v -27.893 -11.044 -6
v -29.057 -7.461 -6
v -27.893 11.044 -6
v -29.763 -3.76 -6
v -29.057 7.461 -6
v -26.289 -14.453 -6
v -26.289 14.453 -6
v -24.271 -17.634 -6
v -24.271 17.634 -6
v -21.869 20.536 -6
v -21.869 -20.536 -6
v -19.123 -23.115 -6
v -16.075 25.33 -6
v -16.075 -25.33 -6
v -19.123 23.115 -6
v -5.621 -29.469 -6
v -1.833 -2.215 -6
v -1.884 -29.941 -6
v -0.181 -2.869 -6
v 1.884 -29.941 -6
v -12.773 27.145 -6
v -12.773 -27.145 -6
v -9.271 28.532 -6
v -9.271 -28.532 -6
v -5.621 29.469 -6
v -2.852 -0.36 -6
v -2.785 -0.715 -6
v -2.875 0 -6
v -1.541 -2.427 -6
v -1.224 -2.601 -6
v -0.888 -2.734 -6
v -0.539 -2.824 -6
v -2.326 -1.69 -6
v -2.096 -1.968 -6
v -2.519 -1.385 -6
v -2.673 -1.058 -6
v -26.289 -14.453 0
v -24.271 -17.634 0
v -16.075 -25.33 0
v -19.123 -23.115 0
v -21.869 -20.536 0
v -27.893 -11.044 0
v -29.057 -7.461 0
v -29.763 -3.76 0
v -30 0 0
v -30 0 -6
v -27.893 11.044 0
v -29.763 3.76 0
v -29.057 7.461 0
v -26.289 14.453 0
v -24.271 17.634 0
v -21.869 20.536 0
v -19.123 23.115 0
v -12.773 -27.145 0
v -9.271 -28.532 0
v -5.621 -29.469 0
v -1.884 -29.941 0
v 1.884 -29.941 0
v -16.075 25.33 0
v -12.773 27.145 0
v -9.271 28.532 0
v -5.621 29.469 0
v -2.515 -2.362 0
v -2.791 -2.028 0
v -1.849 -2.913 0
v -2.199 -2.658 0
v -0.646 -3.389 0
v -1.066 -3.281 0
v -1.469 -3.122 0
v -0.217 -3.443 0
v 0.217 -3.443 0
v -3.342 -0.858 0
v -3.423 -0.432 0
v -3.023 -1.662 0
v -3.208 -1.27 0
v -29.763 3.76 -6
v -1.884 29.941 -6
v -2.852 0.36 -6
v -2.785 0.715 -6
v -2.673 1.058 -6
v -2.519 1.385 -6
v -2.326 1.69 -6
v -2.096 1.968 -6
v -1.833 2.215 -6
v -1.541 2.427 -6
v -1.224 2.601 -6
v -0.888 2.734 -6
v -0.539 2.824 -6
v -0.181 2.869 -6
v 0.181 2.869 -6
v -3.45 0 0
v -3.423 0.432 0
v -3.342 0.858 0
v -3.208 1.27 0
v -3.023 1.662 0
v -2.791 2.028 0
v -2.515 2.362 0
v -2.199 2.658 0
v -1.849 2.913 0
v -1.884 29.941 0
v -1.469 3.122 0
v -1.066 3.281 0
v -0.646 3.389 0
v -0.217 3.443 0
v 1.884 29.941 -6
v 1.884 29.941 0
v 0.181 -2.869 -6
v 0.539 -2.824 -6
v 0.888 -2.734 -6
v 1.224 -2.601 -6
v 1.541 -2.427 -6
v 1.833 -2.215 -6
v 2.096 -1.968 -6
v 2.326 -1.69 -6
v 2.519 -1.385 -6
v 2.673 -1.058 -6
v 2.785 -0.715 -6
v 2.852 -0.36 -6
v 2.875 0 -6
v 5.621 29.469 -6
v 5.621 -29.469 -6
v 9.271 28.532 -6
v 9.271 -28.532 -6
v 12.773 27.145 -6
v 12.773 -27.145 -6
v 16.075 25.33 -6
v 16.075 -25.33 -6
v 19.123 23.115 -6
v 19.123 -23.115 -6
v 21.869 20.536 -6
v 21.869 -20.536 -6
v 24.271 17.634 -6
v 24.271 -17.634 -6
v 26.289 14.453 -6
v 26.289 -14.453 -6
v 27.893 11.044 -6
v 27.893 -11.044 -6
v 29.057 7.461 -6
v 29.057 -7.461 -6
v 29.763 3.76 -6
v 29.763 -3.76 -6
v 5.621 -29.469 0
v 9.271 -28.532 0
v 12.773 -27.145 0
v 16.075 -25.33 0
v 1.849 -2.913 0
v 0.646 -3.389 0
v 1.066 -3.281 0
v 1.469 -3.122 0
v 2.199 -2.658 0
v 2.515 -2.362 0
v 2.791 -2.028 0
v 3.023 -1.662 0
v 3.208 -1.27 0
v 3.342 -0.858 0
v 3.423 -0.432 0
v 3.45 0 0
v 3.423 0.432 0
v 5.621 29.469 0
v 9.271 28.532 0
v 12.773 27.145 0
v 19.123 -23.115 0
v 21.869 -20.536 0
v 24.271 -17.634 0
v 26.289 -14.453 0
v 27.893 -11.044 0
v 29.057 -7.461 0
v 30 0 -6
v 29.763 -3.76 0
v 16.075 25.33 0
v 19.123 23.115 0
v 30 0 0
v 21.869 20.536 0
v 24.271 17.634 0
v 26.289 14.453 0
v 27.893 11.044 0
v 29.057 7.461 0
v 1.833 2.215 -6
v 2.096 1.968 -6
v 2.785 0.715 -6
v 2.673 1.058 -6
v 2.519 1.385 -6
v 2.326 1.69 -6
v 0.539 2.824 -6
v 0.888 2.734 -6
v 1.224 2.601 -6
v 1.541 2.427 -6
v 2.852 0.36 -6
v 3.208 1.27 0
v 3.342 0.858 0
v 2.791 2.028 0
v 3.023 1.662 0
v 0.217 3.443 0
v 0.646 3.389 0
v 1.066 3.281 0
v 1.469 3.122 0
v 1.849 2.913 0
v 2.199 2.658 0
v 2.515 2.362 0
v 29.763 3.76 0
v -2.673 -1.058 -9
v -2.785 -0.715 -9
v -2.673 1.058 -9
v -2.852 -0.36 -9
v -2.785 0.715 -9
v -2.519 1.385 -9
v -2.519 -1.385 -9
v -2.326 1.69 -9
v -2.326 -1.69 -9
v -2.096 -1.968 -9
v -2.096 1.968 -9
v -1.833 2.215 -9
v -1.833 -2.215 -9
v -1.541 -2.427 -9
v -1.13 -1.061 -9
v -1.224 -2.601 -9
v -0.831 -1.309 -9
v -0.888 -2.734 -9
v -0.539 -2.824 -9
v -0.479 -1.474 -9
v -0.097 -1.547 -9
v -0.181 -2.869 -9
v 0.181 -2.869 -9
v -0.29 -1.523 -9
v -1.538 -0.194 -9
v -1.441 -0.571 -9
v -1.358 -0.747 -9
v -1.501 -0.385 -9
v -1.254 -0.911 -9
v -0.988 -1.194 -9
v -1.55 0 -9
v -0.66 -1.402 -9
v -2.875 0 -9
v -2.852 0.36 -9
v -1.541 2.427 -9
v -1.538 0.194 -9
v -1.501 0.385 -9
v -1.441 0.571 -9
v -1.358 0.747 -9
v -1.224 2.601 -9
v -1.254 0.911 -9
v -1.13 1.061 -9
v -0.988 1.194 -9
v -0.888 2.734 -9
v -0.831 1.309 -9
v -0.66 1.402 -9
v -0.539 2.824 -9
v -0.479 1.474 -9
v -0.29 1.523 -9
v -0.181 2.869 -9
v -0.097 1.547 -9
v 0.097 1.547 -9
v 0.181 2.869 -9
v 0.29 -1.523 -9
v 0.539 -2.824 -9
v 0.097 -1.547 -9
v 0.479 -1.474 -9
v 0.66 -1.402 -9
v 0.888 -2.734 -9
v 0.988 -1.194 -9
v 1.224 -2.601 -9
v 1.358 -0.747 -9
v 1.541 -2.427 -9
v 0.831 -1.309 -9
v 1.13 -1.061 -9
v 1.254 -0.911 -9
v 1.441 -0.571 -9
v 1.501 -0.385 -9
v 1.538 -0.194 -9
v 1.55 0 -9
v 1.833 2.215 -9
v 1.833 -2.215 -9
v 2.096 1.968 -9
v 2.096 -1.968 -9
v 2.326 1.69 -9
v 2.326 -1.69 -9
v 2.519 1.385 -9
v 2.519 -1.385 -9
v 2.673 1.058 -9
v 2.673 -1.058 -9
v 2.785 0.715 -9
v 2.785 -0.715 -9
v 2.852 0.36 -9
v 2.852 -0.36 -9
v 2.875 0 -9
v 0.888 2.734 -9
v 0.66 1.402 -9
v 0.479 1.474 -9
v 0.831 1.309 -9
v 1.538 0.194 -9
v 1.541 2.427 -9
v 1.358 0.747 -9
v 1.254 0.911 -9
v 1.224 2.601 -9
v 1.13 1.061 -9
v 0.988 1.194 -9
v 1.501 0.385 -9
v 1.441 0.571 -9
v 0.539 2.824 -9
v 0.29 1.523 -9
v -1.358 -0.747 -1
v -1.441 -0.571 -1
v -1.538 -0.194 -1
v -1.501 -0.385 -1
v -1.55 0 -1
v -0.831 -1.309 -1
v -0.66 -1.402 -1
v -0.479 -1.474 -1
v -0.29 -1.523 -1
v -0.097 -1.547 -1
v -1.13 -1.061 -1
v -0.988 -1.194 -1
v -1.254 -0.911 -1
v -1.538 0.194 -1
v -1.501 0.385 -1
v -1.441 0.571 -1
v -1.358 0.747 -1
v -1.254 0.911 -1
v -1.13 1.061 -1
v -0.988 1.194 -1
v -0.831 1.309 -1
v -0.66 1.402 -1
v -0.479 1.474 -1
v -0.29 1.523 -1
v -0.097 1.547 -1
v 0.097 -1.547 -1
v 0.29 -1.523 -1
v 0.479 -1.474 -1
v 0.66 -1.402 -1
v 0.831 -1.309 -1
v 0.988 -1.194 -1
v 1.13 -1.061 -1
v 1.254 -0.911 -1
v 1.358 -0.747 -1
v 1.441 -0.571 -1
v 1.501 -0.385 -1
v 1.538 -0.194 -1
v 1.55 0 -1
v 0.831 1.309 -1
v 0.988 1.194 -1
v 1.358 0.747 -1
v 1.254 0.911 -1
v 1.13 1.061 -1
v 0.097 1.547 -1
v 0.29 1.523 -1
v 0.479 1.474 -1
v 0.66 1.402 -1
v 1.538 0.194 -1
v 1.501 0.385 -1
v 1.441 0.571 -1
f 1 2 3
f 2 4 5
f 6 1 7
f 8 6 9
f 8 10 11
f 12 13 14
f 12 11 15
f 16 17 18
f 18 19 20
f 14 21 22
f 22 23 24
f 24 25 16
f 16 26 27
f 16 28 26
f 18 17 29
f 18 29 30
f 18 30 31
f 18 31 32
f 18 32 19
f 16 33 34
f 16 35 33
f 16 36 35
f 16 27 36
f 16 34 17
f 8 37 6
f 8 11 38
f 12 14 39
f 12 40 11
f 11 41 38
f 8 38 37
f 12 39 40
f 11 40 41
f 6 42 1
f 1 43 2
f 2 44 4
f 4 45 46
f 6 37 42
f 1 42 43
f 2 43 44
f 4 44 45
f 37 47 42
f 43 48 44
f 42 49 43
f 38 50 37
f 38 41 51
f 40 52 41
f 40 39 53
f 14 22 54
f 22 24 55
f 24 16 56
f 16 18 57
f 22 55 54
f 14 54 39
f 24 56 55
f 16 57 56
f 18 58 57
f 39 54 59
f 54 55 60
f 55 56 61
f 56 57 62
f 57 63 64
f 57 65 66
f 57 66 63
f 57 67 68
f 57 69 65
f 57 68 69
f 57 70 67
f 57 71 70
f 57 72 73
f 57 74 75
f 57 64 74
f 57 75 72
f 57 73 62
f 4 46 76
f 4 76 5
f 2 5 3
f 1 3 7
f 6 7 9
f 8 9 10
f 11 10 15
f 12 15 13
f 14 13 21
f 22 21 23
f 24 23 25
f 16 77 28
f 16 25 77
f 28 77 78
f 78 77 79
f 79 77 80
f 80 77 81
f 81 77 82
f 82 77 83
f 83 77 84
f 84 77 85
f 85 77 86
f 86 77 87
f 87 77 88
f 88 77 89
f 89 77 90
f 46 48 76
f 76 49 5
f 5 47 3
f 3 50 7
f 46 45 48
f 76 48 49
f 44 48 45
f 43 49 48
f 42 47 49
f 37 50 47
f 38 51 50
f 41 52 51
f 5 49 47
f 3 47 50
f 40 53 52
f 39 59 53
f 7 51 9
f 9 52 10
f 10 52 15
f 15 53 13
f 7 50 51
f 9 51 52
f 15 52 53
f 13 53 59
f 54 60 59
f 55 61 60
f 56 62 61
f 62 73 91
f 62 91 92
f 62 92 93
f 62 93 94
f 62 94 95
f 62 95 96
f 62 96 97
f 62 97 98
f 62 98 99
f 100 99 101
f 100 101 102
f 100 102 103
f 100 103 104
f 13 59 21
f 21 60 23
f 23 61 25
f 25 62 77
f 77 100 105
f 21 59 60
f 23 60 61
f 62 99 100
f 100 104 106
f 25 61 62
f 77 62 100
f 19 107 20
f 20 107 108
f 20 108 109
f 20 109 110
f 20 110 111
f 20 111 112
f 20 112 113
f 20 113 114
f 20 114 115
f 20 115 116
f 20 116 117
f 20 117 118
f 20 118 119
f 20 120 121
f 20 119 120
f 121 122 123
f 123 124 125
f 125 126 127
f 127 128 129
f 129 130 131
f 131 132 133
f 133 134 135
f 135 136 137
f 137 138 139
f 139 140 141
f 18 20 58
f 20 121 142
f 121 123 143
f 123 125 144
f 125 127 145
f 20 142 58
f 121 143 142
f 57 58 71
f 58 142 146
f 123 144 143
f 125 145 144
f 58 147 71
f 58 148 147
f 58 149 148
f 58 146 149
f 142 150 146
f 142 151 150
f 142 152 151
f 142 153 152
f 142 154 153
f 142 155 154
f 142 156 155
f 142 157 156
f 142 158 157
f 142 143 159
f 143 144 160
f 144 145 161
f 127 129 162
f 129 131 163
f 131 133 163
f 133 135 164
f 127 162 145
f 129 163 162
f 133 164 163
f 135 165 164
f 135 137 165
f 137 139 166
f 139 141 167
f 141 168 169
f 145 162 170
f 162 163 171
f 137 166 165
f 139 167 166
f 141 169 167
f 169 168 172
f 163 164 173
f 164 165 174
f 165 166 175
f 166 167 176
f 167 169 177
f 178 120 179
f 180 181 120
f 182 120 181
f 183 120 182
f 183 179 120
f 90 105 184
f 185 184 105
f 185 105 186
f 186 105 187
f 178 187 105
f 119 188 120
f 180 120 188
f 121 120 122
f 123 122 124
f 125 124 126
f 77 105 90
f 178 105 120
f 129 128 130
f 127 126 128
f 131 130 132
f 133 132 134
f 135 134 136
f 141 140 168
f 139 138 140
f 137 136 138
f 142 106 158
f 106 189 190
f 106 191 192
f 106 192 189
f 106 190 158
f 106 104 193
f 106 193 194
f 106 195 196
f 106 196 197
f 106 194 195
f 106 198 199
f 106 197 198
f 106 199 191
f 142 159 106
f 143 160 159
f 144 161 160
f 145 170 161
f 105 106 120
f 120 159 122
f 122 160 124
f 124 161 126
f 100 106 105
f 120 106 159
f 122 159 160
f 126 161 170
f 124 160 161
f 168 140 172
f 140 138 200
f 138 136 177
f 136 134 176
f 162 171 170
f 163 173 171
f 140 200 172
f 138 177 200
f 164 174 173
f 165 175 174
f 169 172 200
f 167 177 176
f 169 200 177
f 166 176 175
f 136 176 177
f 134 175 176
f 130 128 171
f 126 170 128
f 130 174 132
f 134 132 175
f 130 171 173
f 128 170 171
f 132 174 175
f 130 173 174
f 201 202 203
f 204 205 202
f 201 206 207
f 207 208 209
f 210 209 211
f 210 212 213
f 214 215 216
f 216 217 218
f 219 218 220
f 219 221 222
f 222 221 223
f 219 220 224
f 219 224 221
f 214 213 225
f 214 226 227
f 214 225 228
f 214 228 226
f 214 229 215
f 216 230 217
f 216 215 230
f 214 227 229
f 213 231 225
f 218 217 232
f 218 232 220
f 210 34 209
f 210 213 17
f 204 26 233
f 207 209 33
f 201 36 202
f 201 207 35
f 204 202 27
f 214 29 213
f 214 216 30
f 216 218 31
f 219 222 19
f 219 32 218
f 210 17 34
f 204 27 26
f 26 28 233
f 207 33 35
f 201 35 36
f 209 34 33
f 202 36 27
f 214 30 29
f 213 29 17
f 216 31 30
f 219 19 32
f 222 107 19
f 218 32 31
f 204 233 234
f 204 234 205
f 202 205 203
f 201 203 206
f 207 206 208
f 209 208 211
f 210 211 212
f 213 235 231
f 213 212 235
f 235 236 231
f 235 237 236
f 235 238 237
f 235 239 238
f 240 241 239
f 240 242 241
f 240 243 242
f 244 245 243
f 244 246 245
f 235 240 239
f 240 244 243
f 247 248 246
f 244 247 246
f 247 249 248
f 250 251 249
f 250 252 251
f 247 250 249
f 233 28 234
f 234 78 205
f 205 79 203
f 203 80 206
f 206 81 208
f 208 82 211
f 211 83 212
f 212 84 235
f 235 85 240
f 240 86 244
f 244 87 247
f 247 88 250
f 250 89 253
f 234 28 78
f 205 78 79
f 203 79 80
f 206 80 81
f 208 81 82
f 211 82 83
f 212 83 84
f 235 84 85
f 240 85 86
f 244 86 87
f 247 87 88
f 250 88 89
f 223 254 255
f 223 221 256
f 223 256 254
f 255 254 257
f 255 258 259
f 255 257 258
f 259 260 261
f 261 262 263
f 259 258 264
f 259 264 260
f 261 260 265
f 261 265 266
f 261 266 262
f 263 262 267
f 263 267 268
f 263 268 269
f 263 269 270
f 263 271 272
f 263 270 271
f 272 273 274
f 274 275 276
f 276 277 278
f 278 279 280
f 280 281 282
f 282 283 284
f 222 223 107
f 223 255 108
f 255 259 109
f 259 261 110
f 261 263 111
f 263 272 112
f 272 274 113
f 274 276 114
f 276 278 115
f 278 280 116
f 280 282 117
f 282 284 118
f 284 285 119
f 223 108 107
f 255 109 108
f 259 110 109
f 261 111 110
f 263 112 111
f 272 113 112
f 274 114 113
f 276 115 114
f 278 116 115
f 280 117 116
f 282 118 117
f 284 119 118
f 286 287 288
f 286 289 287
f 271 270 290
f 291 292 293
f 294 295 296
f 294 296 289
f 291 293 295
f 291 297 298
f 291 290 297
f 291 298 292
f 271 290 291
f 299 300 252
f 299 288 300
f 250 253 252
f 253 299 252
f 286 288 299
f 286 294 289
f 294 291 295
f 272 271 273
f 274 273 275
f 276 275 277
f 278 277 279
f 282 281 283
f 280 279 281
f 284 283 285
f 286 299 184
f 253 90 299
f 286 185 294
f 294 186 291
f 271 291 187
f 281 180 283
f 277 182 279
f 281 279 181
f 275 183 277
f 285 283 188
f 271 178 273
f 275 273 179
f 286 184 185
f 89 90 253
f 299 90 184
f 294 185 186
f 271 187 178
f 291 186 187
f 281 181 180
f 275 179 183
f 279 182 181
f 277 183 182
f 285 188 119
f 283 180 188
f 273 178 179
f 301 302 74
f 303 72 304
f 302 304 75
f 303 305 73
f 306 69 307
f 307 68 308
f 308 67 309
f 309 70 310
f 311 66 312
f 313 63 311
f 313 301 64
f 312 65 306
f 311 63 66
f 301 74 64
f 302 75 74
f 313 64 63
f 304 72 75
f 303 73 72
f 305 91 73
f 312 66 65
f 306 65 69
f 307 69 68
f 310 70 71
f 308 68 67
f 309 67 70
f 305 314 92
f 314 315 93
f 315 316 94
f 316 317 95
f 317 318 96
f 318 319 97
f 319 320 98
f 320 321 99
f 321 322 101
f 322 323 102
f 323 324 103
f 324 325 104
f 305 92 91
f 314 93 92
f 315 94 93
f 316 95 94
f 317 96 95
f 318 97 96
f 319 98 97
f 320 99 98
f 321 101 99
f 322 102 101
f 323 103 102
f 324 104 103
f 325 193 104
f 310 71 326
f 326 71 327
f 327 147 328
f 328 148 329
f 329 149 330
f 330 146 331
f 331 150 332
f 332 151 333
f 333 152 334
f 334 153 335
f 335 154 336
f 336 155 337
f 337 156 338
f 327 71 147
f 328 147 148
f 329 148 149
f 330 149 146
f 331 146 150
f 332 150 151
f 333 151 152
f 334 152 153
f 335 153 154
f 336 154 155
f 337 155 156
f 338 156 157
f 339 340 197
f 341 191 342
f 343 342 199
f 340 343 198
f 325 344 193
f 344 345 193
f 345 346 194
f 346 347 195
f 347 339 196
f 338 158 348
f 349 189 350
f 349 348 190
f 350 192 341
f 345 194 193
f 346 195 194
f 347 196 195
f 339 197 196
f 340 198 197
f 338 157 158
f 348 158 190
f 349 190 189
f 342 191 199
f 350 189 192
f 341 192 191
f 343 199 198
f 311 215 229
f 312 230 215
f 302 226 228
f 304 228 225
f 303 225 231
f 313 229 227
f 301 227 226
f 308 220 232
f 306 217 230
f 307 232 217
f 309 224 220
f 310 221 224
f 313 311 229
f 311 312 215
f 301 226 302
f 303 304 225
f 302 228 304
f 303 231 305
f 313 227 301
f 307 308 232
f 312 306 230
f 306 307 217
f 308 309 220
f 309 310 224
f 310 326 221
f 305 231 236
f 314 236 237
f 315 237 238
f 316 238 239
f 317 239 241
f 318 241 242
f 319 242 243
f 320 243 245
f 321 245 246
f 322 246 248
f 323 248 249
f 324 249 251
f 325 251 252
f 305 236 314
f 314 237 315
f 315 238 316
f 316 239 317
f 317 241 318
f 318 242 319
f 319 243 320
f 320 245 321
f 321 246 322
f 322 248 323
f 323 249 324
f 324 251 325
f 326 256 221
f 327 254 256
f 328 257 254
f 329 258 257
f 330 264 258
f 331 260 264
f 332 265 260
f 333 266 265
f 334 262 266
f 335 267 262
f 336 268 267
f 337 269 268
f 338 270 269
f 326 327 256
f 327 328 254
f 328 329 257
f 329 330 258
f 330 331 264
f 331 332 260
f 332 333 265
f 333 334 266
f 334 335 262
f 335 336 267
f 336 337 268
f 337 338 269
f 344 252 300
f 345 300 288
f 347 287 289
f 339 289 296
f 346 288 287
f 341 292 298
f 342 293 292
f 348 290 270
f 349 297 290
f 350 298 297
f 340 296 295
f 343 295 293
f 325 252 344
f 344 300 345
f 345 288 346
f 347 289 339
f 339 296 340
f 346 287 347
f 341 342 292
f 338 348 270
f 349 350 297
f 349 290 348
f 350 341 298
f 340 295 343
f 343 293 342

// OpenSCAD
$fn = 50;


difference() {
	union() {
		translate(v = [0, 0, -6.0000000000]) {
			cylinder(h = 6, r = 30.0000000000);
		}
		#translate(v = [0, 0, -9.0000000000]) {
			cylinder(h = 9, r = 2.8750000000);
		}
	}
	union() {
		translate(v = [0, 0, 0]) {
			rotate(a = [0, 0, 0]) {
				difference() {
					union() {
						translate(v = [0, 0, -9.0000000000]) {
							cylinder(h = 9, r = 1.2500000000);
						}
						translate(v = [0, 0, -1.0000000000]) {
							cylinder(h = 1.0000000000, r1 = 1.5500000000, r2 = 3.4500000000);
						}
						translate(v = [0, 0, -9.0000000000]) {
							cylinder(h = 9, r = 1.5500000000);
						}
						translate(v = [0, 0, -9.0000000000]) {
							cylinder(h = 9, r = 1.2500000000);
						}
					}
					union();
				}
			}
		}
	}
}
